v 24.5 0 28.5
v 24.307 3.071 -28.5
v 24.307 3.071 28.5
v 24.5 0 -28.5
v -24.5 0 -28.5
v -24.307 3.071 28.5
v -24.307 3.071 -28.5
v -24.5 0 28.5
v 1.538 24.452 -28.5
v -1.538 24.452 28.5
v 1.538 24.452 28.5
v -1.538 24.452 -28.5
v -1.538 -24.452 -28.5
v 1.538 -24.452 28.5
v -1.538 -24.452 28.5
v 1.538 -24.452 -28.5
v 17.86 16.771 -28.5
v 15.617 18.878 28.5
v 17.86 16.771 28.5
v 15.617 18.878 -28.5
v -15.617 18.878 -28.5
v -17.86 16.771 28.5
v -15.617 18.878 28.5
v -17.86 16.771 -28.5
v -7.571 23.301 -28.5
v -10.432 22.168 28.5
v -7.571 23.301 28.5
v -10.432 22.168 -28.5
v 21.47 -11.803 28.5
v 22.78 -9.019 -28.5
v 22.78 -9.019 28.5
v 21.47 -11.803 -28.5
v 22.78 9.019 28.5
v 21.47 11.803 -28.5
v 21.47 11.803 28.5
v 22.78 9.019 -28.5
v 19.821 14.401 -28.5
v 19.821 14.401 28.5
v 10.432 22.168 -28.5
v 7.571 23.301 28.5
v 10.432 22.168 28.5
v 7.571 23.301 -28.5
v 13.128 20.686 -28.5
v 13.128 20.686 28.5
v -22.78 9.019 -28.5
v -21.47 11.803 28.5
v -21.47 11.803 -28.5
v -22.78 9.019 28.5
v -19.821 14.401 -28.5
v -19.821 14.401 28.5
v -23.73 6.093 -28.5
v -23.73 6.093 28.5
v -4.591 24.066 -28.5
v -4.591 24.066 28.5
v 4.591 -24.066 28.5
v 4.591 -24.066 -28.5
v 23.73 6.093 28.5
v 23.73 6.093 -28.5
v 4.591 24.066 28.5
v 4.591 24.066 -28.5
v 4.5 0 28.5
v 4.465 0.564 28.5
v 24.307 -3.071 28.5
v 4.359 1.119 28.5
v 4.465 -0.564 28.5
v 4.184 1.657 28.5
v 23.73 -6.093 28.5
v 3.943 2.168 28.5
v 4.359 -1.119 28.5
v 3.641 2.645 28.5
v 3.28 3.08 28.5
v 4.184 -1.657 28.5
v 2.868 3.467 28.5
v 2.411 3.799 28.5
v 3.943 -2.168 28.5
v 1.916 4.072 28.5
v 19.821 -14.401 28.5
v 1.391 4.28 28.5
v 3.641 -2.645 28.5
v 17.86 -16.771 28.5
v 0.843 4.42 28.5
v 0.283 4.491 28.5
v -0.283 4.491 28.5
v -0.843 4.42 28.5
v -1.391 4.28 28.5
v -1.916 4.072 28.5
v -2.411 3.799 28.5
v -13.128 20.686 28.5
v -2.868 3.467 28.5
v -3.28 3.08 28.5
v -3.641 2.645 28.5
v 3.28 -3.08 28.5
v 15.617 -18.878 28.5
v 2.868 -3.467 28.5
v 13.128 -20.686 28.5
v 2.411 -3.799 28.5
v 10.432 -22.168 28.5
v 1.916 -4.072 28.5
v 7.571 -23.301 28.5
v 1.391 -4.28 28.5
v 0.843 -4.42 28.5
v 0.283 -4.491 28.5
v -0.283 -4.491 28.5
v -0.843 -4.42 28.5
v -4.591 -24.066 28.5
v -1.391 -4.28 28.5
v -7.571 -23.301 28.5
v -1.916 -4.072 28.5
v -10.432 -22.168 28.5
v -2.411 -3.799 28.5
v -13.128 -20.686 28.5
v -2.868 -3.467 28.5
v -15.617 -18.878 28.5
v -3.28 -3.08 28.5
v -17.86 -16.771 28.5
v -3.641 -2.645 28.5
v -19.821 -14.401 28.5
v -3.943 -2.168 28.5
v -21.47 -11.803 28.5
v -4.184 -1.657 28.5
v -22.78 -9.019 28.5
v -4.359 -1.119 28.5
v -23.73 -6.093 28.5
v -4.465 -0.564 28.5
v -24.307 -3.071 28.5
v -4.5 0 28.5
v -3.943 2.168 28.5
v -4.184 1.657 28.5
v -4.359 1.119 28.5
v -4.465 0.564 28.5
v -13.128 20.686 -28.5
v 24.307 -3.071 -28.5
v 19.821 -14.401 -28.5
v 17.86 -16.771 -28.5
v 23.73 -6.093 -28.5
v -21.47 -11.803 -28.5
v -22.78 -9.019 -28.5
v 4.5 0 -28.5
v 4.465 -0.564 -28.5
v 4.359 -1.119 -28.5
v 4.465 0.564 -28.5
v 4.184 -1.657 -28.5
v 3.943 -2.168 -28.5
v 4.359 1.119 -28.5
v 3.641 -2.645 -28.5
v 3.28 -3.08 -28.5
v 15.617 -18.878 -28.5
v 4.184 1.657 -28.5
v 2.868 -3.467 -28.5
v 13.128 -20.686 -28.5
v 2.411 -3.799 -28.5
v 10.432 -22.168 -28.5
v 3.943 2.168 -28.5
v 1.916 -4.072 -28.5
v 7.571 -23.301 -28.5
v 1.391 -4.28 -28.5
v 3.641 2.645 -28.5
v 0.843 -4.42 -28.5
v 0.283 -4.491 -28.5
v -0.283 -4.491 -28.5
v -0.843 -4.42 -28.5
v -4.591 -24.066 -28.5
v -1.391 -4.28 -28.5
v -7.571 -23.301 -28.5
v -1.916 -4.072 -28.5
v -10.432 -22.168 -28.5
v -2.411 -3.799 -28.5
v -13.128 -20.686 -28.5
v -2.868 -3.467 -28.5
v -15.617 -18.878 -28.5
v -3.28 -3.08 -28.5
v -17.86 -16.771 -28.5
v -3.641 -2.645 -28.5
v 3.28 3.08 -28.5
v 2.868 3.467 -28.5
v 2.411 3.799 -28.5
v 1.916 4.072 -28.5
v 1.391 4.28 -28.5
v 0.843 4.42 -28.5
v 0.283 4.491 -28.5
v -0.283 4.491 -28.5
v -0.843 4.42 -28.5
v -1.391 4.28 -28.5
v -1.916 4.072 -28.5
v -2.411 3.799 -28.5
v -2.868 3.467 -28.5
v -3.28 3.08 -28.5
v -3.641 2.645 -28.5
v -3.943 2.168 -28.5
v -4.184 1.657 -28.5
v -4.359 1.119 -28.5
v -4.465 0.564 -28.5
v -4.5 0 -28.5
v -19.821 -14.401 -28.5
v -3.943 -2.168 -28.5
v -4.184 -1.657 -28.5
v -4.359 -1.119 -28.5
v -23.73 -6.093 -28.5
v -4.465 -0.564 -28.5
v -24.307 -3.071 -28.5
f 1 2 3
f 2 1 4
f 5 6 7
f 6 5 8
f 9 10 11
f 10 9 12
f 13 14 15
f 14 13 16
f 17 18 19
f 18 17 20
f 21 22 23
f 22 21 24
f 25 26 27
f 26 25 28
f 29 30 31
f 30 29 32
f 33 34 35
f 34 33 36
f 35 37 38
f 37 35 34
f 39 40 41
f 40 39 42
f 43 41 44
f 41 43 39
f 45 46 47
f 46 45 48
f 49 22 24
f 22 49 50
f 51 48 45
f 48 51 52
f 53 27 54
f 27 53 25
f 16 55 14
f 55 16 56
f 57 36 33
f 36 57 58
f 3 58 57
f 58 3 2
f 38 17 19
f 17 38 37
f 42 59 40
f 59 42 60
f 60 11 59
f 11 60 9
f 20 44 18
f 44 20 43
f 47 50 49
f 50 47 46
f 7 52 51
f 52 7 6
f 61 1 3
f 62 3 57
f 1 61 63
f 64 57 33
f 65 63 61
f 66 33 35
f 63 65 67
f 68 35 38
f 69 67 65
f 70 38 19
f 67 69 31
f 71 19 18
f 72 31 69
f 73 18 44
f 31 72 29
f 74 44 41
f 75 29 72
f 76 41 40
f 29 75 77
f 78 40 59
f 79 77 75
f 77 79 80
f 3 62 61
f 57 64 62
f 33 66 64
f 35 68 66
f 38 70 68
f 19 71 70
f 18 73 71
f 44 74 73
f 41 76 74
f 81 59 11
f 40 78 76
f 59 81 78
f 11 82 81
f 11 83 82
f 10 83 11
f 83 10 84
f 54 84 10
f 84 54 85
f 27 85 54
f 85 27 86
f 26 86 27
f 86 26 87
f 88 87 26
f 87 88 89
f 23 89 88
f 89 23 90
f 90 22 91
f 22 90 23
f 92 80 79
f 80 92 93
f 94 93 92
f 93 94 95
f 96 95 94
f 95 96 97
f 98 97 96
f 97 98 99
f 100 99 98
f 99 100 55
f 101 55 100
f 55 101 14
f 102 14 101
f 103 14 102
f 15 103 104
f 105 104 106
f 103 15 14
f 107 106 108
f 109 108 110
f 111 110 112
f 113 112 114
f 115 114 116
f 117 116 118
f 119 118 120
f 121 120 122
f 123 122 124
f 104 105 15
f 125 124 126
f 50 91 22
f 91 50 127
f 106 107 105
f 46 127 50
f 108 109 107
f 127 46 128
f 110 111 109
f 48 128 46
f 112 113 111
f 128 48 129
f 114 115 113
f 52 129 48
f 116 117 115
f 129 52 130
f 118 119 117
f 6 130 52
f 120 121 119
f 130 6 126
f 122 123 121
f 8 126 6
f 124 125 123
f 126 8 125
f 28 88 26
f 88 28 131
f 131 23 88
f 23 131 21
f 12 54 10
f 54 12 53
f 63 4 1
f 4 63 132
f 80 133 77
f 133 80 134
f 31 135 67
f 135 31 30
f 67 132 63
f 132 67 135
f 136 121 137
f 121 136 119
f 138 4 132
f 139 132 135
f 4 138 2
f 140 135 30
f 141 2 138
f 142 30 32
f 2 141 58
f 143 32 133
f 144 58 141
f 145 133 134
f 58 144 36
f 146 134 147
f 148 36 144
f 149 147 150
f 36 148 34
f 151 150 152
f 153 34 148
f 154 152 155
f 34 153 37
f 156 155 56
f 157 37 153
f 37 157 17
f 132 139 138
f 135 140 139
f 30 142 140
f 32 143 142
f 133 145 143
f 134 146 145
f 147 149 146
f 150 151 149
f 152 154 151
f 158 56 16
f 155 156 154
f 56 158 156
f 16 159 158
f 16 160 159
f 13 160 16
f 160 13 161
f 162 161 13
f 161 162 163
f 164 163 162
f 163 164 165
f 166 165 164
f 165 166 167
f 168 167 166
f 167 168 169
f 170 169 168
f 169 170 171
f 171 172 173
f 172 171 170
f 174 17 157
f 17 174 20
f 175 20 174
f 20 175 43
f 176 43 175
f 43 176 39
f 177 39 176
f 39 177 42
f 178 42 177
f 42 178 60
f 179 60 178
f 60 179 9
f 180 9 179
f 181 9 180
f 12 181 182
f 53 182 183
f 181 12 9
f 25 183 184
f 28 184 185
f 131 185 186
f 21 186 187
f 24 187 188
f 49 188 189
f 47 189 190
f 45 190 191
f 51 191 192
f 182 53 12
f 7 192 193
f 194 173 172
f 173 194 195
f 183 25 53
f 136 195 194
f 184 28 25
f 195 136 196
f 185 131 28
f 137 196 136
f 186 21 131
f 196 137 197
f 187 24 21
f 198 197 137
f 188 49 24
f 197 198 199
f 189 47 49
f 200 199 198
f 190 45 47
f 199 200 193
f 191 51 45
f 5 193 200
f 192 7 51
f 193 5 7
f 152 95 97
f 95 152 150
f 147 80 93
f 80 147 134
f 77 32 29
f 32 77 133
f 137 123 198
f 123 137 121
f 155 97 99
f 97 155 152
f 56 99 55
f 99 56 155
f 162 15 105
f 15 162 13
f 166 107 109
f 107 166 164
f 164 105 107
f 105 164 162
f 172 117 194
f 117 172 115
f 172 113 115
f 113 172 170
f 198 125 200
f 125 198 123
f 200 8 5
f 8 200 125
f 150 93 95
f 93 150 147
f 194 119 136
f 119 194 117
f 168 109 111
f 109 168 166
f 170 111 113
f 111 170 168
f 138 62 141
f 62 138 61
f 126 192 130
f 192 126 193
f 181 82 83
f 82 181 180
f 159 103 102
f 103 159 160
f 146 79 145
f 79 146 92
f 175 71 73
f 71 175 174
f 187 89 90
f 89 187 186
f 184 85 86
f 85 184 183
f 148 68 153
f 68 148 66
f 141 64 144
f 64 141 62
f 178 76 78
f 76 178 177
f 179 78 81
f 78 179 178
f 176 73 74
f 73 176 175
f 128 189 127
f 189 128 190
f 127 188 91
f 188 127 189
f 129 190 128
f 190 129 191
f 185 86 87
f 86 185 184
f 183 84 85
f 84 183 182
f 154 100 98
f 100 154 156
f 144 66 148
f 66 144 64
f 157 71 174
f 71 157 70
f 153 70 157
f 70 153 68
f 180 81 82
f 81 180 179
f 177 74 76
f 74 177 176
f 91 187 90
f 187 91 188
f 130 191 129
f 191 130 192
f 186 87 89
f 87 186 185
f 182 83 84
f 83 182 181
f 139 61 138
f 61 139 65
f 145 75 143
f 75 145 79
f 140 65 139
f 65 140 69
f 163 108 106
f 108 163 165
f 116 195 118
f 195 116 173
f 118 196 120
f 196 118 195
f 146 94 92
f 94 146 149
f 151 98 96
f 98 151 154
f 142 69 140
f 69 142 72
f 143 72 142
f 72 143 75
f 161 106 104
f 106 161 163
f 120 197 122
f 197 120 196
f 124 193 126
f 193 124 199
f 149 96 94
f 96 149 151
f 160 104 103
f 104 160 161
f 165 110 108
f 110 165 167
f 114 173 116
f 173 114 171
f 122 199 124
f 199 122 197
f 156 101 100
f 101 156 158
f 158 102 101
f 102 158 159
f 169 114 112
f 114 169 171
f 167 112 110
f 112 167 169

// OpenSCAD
$fn = 50;


difference() {
	union() {
		translate(v = [0, 0, -28.5000000000]) {
			cylinder(h = 57, r = 24.5000000000);
		}
	}
	union() {
		translate(v = [0, 0, -100.0000000000]) {
			cylinder(h = 200, r = 4.5000000000);
		}
	}
}
